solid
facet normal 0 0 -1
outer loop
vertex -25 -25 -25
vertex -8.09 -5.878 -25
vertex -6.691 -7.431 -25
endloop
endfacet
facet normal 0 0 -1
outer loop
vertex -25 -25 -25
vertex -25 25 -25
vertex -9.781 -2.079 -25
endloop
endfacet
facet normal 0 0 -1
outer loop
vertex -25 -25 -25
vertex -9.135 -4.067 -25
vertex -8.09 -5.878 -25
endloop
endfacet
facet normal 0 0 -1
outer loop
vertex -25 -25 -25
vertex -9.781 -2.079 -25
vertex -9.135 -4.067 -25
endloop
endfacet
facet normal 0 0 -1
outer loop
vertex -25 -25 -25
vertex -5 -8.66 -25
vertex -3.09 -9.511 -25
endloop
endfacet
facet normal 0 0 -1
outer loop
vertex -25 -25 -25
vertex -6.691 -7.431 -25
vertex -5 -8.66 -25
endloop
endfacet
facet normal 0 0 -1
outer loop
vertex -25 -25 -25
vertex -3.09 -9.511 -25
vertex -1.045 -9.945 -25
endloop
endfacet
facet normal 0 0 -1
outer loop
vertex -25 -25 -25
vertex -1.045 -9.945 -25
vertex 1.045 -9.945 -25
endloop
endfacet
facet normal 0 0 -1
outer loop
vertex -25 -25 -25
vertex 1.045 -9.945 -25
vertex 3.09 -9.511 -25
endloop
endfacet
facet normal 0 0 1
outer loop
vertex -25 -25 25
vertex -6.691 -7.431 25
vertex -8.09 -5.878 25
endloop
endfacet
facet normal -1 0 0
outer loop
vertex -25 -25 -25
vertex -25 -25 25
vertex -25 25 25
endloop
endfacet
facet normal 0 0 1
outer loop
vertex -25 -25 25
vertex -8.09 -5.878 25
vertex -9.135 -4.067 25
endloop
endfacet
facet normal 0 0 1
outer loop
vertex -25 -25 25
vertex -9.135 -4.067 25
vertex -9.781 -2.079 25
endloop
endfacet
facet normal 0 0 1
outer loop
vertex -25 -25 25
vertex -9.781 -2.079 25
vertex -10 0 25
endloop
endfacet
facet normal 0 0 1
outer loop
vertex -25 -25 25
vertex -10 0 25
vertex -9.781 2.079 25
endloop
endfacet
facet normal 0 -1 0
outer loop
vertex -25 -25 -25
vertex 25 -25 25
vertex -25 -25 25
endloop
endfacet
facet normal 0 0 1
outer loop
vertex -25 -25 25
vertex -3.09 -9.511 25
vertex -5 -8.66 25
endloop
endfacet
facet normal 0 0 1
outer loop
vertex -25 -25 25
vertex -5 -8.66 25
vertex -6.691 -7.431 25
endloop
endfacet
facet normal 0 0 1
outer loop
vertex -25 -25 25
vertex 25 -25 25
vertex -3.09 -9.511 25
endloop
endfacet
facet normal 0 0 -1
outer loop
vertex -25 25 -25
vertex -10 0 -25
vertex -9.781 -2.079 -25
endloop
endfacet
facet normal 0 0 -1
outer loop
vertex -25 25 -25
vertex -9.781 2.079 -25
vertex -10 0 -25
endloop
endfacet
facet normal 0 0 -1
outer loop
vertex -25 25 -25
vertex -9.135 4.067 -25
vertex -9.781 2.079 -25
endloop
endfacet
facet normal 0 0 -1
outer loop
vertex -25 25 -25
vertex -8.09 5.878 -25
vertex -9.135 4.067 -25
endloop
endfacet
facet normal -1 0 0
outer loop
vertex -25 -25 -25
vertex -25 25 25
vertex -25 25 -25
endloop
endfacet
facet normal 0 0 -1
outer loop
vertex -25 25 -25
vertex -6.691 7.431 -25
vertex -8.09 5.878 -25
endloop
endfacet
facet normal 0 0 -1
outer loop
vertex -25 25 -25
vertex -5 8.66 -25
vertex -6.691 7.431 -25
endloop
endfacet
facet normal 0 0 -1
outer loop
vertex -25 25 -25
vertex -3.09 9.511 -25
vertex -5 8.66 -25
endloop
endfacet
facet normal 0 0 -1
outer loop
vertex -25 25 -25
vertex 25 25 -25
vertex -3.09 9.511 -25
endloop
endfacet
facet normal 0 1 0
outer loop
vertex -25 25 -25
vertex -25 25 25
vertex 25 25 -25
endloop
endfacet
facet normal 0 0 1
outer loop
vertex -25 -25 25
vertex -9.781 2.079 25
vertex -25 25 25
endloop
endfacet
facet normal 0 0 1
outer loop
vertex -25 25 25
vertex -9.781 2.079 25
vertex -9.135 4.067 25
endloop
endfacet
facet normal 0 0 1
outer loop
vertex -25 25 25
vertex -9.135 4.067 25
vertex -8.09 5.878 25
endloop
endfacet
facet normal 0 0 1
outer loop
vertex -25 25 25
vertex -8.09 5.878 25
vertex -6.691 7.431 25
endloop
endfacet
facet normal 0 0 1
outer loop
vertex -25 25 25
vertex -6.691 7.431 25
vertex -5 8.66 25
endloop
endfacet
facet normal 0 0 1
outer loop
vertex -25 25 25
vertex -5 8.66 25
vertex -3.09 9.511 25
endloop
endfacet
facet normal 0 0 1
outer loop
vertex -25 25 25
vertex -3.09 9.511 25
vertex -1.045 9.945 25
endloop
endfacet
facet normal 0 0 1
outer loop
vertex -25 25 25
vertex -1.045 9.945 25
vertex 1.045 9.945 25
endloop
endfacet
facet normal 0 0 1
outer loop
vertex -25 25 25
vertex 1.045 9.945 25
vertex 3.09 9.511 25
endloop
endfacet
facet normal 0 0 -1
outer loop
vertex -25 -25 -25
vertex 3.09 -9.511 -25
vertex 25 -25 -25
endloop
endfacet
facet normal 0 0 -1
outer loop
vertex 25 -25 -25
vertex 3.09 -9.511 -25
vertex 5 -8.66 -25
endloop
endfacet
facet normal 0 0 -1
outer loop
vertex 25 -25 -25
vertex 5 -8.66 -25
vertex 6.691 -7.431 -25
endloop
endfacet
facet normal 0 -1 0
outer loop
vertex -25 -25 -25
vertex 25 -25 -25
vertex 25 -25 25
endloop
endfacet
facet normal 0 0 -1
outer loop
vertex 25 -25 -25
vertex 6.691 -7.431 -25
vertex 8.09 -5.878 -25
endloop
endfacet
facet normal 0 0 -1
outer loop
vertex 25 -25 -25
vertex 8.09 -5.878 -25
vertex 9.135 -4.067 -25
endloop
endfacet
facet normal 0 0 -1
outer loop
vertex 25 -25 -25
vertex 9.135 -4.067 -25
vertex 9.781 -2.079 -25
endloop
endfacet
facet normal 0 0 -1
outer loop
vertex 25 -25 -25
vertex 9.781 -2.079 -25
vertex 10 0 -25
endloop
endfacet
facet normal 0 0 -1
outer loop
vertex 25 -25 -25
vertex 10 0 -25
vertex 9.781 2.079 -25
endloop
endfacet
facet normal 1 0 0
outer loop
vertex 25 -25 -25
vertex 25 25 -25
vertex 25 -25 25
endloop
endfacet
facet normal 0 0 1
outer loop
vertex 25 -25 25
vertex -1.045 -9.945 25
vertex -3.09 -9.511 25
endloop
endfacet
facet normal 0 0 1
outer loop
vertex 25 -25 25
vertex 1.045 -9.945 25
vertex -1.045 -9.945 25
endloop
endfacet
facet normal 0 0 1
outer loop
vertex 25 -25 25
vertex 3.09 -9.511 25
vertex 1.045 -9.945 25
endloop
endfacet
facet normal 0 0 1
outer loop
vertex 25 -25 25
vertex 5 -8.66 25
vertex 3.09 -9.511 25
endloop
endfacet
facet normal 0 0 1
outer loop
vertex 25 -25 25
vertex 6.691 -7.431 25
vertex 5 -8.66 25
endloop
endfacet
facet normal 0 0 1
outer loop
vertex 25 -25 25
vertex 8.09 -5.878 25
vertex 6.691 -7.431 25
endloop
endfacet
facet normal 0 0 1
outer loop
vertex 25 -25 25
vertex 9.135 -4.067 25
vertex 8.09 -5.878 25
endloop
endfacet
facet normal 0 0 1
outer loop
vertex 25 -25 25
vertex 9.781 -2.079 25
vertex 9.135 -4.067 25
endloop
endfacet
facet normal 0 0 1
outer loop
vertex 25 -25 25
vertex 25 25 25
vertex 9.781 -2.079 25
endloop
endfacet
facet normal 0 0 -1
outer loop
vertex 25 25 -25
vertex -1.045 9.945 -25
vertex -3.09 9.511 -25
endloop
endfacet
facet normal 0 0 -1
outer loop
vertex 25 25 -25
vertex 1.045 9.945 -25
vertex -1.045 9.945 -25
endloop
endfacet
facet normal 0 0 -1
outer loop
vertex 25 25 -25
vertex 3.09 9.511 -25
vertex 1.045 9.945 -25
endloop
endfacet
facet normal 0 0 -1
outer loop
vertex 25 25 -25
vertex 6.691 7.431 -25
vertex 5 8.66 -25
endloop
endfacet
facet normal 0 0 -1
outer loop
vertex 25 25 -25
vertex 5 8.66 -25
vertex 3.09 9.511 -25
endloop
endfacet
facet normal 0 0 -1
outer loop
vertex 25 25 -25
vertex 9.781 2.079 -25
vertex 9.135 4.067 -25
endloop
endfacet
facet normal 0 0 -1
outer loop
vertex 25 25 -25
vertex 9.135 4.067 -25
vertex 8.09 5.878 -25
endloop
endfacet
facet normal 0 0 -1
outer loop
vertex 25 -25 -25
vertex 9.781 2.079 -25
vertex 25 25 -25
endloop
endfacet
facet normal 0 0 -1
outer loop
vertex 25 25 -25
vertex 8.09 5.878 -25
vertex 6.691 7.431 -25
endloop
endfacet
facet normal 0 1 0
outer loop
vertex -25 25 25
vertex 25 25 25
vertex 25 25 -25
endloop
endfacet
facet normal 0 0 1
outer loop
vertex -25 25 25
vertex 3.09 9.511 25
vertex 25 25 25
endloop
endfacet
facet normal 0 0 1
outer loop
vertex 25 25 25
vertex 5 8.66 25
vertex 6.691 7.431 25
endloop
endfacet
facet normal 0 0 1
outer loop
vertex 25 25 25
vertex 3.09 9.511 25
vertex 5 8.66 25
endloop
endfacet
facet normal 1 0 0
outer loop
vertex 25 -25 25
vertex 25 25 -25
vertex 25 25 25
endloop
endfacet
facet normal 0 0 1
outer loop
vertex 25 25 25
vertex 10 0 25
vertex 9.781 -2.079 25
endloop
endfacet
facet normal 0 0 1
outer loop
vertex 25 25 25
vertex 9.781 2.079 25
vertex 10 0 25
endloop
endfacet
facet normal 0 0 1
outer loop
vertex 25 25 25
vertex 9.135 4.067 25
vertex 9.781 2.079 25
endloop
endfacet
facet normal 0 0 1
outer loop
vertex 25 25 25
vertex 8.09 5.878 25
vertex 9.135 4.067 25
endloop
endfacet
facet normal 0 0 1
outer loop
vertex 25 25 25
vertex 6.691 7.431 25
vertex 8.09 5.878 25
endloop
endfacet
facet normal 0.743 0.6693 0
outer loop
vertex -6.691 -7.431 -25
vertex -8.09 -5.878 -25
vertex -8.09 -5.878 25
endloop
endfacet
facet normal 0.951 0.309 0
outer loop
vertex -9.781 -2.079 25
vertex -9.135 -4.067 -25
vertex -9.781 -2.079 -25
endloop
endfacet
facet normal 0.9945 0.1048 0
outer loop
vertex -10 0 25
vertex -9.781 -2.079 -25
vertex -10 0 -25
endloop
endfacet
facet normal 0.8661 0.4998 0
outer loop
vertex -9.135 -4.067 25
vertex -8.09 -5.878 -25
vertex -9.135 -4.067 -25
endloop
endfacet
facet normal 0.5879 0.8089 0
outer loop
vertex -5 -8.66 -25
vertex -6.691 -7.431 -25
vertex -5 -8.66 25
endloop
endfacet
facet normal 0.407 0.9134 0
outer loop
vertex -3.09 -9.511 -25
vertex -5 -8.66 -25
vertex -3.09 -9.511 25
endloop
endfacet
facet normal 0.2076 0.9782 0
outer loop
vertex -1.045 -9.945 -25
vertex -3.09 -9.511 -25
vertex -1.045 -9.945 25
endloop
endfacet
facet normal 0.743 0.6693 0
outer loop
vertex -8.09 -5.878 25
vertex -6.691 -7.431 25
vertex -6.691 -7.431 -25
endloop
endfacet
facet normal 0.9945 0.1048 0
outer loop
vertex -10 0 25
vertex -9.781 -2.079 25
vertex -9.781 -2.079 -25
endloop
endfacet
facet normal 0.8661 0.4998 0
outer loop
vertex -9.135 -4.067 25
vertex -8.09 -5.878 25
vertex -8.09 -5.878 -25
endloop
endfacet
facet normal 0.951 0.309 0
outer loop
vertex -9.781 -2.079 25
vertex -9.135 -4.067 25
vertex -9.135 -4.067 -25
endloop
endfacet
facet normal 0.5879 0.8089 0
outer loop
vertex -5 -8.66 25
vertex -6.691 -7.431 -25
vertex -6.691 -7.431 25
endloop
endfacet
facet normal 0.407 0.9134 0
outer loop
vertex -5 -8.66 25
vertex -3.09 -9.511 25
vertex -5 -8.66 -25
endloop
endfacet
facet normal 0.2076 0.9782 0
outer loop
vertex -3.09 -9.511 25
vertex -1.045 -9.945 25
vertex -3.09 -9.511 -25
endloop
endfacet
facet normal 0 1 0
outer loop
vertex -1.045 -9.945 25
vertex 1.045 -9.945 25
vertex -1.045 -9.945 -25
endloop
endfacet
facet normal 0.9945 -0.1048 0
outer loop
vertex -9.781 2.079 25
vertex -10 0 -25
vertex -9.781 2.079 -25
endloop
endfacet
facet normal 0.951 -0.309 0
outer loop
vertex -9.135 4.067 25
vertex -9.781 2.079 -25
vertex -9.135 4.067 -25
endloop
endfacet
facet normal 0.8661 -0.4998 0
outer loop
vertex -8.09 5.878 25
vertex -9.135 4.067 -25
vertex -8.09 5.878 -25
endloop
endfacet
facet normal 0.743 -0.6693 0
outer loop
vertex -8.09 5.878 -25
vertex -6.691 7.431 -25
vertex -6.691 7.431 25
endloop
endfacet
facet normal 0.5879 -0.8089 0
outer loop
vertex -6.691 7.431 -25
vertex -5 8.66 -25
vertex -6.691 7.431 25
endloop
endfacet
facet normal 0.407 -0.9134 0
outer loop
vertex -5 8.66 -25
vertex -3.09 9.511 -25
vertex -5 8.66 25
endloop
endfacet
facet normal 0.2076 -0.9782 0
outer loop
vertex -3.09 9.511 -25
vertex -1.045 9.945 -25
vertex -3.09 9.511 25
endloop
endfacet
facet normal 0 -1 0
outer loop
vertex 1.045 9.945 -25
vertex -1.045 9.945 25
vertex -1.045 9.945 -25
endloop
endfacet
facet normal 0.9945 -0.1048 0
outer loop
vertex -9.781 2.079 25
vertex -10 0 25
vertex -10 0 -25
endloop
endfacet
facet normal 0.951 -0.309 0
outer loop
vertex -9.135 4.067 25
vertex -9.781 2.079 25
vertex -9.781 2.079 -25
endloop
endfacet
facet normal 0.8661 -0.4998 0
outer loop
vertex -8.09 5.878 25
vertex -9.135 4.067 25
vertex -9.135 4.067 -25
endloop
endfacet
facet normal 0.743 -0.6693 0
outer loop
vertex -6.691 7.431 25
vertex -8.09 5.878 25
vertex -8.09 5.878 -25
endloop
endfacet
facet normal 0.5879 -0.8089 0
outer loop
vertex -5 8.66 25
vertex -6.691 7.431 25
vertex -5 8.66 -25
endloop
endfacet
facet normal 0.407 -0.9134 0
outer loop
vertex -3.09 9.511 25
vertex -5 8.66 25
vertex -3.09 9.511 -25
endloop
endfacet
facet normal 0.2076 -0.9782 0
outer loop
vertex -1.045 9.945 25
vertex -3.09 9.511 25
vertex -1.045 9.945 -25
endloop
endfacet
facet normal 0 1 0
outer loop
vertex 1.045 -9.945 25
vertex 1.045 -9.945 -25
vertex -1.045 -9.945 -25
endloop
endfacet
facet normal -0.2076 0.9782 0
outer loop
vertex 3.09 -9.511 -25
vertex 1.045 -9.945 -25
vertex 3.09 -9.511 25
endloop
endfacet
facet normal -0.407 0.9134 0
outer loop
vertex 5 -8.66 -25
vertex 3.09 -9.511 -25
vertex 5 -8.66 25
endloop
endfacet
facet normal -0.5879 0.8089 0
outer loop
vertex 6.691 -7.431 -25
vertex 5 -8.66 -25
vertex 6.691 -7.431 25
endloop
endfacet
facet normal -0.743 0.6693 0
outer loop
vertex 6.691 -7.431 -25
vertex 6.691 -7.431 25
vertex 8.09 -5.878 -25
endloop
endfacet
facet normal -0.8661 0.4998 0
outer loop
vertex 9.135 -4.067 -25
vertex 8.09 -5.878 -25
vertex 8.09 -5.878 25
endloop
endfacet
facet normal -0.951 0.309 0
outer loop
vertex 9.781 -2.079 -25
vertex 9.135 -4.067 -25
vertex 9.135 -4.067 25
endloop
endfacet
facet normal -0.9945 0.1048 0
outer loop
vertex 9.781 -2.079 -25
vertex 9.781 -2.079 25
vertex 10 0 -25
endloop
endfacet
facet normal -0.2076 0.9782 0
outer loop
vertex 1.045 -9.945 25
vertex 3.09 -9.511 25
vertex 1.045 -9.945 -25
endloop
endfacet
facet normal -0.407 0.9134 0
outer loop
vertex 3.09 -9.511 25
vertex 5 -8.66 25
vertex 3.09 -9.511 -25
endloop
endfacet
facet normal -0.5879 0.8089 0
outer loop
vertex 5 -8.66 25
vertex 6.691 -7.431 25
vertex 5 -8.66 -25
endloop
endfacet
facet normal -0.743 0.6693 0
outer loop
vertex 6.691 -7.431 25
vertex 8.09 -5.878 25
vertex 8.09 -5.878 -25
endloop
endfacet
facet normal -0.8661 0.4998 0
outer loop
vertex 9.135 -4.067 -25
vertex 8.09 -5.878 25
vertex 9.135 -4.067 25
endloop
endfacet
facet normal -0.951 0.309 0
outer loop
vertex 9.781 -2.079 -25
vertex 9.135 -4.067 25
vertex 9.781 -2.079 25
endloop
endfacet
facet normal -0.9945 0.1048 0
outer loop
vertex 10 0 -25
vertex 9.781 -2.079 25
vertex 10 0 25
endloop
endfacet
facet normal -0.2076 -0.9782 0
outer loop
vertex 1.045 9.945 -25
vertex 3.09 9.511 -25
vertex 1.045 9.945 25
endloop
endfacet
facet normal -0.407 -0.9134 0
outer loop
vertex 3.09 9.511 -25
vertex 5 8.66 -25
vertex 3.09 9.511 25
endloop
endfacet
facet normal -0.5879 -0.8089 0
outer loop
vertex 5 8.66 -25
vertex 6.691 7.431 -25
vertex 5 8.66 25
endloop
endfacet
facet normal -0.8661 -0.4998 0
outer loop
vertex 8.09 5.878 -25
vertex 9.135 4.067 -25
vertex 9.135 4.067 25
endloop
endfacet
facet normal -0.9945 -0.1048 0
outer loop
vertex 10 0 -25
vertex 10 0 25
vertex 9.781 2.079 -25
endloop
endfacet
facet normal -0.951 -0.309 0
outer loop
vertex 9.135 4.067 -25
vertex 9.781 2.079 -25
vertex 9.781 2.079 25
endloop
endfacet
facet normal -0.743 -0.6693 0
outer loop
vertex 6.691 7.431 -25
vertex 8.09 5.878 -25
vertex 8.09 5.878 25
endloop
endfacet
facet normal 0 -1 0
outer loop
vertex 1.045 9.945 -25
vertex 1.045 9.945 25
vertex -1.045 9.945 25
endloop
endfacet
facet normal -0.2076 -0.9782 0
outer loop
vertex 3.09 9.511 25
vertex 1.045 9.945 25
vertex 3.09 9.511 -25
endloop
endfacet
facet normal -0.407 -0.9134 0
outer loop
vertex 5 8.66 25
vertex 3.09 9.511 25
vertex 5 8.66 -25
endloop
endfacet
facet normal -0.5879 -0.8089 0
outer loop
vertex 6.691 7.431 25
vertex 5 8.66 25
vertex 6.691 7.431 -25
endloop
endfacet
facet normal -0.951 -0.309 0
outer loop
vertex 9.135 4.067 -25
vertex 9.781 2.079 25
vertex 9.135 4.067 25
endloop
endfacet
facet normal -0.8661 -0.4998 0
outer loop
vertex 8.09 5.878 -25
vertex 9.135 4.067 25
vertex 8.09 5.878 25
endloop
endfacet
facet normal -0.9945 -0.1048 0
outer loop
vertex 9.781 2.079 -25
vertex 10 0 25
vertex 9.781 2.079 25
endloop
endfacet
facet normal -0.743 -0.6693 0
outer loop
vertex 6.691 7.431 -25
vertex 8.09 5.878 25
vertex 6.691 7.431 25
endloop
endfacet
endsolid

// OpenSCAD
difference() {
    // 50mm角の立方体を中央に配置
    cube(size = 50, center = true);

    // 直径20mm（半径10mm）の円柱を中央に配置し、
    // 立方体の高さを超える十分な高さを与えてZ軸方向に貫通させる
    cylinder(r = 10, h = 60, center = true);
}
